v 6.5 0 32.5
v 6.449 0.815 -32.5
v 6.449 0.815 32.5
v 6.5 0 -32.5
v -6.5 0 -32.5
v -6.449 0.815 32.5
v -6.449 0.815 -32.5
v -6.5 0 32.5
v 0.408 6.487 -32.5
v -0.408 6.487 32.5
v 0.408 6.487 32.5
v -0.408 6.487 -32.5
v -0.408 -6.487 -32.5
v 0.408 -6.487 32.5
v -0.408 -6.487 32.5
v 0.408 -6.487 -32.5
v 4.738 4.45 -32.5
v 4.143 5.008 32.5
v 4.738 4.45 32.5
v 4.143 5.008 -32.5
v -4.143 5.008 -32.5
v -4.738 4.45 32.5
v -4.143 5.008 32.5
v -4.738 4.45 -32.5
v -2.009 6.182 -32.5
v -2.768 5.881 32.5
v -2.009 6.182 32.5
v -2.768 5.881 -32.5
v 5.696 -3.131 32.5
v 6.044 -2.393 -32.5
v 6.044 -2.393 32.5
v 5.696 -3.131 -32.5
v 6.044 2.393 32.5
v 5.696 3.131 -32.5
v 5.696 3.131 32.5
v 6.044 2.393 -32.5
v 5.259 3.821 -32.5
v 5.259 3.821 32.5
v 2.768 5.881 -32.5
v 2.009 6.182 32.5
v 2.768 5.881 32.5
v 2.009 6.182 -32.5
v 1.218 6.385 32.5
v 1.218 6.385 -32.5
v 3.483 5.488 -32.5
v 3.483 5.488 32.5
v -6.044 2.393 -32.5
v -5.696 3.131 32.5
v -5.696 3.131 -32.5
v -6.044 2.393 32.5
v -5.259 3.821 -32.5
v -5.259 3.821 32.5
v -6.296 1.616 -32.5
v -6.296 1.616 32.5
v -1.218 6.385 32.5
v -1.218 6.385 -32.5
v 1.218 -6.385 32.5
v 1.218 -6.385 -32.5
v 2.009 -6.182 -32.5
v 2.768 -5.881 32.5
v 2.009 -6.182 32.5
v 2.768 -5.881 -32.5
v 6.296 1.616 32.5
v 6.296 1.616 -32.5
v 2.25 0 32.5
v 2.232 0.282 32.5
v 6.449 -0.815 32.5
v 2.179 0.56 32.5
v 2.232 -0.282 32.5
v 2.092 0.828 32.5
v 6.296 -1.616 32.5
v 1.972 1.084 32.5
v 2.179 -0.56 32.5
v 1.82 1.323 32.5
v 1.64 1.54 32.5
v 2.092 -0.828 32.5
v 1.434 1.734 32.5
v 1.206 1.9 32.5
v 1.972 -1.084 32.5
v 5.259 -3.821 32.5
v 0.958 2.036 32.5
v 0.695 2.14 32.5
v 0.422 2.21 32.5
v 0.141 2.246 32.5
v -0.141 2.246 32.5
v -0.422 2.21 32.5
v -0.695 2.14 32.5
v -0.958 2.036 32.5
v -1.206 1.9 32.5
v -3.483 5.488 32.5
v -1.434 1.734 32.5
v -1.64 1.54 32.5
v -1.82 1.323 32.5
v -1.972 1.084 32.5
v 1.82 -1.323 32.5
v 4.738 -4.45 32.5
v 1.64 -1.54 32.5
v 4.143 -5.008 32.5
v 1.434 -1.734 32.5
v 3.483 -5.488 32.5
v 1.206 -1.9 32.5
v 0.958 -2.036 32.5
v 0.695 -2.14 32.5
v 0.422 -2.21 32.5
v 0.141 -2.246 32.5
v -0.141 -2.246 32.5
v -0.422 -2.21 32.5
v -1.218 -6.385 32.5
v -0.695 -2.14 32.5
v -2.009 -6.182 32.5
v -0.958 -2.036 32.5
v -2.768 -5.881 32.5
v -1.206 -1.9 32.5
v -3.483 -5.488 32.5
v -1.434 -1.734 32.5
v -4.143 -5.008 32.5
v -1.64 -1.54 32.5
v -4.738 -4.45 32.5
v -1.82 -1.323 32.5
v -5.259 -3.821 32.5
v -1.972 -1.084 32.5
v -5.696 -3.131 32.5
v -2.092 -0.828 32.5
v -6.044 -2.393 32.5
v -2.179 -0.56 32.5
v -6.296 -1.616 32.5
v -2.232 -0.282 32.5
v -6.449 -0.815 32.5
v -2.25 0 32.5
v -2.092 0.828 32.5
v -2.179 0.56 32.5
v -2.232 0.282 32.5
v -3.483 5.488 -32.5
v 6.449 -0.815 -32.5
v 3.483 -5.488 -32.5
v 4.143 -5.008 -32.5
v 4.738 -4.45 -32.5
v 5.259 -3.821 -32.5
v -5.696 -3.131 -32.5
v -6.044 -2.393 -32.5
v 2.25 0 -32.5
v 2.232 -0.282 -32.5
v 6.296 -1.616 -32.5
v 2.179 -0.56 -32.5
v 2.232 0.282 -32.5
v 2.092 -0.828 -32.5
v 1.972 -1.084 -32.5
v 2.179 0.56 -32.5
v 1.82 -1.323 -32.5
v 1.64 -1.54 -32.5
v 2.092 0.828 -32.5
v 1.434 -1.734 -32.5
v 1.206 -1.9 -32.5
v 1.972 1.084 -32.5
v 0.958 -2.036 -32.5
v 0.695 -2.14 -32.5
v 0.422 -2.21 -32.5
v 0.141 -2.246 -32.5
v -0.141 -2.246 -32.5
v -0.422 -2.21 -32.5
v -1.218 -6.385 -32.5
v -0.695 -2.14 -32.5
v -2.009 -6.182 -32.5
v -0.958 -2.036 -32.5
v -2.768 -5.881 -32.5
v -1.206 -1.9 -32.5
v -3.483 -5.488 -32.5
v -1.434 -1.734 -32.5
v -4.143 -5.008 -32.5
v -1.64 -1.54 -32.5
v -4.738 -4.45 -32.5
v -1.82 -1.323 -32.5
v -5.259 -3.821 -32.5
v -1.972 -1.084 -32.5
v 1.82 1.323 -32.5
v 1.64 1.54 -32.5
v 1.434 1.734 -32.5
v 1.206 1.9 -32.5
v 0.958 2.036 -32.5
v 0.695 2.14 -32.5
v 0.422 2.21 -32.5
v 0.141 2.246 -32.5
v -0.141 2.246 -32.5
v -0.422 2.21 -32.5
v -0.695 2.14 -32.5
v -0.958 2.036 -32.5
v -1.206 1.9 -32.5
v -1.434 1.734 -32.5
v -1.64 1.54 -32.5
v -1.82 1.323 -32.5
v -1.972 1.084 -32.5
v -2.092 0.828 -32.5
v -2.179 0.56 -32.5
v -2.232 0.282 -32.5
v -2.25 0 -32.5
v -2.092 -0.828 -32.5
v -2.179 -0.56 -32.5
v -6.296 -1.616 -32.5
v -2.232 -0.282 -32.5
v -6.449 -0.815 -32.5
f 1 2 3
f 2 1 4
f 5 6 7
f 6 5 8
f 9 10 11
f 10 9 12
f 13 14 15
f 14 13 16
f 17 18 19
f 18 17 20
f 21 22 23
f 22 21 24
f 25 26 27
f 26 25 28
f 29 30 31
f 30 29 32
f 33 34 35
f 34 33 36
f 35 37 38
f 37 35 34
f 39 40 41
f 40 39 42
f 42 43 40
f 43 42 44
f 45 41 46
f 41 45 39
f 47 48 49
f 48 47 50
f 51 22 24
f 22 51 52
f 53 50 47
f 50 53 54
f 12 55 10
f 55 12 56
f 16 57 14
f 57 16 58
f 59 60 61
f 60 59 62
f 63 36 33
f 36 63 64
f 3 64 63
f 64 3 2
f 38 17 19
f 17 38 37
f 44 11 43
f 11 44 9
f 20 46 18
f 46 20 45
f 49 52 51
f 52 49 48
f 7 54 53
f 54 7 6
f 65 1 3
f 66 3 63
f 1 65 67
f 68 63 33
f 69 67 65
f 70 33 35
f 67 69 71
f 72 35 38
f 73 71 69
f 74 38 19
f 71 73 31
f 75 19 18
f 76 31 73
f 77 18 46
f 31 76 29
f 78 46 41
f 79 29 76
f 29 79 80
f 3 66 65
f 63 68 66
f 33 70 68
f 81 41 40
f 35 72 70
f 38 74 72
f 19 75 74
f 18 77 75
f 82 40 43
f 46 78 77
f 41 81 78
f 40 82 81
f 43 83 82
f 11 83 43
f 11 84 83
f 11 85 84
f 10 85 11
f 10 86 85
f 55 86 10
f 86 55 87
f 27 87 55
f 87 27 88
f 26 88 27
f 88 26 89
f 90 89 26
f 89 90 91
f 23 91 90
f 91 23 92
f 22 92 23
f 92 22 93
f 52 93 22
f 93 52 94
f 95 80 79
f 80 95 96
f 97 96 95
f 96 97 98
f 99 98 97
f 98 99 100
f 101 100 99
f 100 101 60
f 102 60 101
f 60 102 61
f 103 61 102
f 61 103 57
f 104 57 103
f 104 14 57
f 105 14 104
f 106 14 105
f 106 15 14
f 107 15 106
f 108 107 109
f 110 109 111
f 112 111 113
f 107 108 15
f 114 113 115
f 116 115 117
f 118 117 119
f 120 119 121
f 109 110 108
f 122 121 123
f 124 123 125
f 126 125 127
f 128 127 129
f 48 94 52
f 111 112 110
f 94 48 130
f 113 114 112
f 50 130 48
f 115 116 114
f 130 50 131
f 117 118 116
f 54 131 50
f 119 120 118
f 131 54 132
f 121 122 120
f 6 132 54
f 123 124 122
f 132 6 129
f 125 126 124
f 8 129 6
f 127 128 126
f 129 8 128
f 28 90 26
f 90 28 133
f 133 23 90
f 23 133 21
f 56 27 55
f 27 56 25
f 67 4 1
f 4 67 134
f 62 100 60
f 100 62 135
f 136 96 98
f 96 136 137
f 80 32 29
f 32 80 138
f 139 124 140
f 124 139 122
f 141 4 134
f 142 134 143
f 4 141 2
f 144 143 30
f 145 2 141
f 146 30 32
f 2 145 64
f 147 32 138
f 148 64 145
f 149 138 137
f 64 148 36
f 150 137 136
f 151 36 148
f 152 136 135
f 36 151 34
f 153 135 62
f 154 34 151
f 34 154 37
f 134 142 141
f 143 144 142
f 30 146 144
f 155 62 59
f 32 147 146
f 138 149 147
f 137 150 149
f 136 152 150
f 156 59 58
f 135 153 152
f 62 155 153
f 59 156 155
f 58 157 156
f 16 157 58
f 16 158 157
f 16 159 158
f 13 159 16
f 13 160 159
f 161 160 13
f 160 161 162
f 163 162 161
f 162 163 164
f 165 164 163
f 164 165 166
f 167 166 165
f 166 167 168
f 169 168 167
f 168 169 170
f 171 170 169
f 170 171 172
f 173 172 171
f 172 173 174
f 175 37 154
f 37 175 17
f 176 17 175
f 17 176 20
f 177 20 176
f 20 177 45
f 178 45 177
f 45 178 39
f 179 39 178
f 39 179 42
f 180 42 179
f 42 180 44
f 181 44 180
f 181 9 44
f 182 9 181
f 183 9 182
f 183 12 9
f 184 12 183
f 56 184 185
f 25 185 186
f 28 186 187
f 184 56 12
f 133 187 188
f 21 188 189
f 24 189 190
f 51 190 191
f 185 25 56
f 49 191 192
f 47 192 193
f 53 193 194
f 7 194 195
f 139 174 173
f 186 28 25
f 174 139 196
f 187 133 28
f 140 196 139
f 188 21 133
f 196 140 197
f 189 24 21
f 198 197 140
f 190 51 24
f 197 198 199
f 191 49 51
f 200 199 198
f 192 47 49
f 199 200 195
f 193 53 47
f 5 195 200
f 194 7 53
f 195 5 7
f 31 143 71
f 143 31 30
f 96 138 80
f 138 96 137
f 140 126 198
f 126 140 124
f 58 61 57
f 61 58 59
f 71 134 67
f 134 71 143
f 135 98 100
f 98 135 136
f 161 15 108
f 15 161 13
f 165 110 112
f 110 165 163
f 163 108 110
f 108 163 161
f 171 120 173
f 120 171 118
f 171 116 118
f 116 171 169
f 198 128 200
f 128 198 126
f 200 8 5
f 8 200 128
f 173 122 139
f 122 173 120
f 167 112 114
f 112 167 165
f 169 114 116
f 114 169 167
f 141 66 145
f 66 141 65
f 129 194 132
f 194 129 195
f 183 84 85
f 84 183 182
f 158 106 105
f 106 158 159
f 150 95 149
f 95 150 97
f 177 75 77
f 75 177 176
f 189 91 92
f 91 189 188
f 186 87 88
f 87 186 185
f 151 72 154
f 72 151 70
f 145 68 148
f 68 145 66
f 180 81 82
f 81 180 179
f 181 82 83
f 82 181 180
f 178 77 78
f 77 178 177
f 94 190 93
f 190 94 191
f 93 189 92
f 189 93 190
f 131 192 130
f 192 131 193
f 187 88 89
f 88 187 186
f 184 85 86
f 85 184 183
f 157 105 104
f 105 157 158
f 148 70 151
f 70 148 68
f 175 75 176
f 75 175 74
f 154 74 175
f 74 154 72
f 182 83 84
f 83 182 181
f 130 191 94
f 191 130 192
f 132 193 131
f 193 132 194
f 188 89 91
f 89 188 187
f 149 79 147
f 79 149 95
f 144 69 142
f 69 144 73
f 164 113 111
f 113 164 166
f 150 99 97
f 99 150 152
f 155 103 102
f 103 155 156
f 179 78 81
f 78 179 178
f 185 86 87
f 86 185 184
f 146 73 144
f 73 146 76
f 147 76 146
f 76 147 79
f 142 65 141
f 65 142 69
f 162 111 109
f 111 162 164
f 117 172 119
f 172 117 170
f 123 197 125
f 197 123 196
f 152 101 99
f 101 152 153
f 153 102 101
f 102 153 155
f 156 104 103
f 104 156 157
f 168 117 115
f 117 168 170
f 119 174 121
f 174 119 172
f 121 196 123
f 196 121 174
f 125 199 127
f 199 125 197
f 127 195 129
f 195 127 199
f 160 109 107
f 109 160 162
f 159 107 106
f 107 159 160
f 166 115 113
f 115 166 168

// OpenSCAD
$fn = 50;


difference() {
	union() {
		translate(v = [0, 0, -32.5000000000]) {
			cylinder(h = 65, r = 6.5000000000);
		}
	}
	union() {
		translate(v = [0, 0, -100.0000000000]) {
			cylinder(h = 200, r = 2.2500000000);
		}
	}
}
